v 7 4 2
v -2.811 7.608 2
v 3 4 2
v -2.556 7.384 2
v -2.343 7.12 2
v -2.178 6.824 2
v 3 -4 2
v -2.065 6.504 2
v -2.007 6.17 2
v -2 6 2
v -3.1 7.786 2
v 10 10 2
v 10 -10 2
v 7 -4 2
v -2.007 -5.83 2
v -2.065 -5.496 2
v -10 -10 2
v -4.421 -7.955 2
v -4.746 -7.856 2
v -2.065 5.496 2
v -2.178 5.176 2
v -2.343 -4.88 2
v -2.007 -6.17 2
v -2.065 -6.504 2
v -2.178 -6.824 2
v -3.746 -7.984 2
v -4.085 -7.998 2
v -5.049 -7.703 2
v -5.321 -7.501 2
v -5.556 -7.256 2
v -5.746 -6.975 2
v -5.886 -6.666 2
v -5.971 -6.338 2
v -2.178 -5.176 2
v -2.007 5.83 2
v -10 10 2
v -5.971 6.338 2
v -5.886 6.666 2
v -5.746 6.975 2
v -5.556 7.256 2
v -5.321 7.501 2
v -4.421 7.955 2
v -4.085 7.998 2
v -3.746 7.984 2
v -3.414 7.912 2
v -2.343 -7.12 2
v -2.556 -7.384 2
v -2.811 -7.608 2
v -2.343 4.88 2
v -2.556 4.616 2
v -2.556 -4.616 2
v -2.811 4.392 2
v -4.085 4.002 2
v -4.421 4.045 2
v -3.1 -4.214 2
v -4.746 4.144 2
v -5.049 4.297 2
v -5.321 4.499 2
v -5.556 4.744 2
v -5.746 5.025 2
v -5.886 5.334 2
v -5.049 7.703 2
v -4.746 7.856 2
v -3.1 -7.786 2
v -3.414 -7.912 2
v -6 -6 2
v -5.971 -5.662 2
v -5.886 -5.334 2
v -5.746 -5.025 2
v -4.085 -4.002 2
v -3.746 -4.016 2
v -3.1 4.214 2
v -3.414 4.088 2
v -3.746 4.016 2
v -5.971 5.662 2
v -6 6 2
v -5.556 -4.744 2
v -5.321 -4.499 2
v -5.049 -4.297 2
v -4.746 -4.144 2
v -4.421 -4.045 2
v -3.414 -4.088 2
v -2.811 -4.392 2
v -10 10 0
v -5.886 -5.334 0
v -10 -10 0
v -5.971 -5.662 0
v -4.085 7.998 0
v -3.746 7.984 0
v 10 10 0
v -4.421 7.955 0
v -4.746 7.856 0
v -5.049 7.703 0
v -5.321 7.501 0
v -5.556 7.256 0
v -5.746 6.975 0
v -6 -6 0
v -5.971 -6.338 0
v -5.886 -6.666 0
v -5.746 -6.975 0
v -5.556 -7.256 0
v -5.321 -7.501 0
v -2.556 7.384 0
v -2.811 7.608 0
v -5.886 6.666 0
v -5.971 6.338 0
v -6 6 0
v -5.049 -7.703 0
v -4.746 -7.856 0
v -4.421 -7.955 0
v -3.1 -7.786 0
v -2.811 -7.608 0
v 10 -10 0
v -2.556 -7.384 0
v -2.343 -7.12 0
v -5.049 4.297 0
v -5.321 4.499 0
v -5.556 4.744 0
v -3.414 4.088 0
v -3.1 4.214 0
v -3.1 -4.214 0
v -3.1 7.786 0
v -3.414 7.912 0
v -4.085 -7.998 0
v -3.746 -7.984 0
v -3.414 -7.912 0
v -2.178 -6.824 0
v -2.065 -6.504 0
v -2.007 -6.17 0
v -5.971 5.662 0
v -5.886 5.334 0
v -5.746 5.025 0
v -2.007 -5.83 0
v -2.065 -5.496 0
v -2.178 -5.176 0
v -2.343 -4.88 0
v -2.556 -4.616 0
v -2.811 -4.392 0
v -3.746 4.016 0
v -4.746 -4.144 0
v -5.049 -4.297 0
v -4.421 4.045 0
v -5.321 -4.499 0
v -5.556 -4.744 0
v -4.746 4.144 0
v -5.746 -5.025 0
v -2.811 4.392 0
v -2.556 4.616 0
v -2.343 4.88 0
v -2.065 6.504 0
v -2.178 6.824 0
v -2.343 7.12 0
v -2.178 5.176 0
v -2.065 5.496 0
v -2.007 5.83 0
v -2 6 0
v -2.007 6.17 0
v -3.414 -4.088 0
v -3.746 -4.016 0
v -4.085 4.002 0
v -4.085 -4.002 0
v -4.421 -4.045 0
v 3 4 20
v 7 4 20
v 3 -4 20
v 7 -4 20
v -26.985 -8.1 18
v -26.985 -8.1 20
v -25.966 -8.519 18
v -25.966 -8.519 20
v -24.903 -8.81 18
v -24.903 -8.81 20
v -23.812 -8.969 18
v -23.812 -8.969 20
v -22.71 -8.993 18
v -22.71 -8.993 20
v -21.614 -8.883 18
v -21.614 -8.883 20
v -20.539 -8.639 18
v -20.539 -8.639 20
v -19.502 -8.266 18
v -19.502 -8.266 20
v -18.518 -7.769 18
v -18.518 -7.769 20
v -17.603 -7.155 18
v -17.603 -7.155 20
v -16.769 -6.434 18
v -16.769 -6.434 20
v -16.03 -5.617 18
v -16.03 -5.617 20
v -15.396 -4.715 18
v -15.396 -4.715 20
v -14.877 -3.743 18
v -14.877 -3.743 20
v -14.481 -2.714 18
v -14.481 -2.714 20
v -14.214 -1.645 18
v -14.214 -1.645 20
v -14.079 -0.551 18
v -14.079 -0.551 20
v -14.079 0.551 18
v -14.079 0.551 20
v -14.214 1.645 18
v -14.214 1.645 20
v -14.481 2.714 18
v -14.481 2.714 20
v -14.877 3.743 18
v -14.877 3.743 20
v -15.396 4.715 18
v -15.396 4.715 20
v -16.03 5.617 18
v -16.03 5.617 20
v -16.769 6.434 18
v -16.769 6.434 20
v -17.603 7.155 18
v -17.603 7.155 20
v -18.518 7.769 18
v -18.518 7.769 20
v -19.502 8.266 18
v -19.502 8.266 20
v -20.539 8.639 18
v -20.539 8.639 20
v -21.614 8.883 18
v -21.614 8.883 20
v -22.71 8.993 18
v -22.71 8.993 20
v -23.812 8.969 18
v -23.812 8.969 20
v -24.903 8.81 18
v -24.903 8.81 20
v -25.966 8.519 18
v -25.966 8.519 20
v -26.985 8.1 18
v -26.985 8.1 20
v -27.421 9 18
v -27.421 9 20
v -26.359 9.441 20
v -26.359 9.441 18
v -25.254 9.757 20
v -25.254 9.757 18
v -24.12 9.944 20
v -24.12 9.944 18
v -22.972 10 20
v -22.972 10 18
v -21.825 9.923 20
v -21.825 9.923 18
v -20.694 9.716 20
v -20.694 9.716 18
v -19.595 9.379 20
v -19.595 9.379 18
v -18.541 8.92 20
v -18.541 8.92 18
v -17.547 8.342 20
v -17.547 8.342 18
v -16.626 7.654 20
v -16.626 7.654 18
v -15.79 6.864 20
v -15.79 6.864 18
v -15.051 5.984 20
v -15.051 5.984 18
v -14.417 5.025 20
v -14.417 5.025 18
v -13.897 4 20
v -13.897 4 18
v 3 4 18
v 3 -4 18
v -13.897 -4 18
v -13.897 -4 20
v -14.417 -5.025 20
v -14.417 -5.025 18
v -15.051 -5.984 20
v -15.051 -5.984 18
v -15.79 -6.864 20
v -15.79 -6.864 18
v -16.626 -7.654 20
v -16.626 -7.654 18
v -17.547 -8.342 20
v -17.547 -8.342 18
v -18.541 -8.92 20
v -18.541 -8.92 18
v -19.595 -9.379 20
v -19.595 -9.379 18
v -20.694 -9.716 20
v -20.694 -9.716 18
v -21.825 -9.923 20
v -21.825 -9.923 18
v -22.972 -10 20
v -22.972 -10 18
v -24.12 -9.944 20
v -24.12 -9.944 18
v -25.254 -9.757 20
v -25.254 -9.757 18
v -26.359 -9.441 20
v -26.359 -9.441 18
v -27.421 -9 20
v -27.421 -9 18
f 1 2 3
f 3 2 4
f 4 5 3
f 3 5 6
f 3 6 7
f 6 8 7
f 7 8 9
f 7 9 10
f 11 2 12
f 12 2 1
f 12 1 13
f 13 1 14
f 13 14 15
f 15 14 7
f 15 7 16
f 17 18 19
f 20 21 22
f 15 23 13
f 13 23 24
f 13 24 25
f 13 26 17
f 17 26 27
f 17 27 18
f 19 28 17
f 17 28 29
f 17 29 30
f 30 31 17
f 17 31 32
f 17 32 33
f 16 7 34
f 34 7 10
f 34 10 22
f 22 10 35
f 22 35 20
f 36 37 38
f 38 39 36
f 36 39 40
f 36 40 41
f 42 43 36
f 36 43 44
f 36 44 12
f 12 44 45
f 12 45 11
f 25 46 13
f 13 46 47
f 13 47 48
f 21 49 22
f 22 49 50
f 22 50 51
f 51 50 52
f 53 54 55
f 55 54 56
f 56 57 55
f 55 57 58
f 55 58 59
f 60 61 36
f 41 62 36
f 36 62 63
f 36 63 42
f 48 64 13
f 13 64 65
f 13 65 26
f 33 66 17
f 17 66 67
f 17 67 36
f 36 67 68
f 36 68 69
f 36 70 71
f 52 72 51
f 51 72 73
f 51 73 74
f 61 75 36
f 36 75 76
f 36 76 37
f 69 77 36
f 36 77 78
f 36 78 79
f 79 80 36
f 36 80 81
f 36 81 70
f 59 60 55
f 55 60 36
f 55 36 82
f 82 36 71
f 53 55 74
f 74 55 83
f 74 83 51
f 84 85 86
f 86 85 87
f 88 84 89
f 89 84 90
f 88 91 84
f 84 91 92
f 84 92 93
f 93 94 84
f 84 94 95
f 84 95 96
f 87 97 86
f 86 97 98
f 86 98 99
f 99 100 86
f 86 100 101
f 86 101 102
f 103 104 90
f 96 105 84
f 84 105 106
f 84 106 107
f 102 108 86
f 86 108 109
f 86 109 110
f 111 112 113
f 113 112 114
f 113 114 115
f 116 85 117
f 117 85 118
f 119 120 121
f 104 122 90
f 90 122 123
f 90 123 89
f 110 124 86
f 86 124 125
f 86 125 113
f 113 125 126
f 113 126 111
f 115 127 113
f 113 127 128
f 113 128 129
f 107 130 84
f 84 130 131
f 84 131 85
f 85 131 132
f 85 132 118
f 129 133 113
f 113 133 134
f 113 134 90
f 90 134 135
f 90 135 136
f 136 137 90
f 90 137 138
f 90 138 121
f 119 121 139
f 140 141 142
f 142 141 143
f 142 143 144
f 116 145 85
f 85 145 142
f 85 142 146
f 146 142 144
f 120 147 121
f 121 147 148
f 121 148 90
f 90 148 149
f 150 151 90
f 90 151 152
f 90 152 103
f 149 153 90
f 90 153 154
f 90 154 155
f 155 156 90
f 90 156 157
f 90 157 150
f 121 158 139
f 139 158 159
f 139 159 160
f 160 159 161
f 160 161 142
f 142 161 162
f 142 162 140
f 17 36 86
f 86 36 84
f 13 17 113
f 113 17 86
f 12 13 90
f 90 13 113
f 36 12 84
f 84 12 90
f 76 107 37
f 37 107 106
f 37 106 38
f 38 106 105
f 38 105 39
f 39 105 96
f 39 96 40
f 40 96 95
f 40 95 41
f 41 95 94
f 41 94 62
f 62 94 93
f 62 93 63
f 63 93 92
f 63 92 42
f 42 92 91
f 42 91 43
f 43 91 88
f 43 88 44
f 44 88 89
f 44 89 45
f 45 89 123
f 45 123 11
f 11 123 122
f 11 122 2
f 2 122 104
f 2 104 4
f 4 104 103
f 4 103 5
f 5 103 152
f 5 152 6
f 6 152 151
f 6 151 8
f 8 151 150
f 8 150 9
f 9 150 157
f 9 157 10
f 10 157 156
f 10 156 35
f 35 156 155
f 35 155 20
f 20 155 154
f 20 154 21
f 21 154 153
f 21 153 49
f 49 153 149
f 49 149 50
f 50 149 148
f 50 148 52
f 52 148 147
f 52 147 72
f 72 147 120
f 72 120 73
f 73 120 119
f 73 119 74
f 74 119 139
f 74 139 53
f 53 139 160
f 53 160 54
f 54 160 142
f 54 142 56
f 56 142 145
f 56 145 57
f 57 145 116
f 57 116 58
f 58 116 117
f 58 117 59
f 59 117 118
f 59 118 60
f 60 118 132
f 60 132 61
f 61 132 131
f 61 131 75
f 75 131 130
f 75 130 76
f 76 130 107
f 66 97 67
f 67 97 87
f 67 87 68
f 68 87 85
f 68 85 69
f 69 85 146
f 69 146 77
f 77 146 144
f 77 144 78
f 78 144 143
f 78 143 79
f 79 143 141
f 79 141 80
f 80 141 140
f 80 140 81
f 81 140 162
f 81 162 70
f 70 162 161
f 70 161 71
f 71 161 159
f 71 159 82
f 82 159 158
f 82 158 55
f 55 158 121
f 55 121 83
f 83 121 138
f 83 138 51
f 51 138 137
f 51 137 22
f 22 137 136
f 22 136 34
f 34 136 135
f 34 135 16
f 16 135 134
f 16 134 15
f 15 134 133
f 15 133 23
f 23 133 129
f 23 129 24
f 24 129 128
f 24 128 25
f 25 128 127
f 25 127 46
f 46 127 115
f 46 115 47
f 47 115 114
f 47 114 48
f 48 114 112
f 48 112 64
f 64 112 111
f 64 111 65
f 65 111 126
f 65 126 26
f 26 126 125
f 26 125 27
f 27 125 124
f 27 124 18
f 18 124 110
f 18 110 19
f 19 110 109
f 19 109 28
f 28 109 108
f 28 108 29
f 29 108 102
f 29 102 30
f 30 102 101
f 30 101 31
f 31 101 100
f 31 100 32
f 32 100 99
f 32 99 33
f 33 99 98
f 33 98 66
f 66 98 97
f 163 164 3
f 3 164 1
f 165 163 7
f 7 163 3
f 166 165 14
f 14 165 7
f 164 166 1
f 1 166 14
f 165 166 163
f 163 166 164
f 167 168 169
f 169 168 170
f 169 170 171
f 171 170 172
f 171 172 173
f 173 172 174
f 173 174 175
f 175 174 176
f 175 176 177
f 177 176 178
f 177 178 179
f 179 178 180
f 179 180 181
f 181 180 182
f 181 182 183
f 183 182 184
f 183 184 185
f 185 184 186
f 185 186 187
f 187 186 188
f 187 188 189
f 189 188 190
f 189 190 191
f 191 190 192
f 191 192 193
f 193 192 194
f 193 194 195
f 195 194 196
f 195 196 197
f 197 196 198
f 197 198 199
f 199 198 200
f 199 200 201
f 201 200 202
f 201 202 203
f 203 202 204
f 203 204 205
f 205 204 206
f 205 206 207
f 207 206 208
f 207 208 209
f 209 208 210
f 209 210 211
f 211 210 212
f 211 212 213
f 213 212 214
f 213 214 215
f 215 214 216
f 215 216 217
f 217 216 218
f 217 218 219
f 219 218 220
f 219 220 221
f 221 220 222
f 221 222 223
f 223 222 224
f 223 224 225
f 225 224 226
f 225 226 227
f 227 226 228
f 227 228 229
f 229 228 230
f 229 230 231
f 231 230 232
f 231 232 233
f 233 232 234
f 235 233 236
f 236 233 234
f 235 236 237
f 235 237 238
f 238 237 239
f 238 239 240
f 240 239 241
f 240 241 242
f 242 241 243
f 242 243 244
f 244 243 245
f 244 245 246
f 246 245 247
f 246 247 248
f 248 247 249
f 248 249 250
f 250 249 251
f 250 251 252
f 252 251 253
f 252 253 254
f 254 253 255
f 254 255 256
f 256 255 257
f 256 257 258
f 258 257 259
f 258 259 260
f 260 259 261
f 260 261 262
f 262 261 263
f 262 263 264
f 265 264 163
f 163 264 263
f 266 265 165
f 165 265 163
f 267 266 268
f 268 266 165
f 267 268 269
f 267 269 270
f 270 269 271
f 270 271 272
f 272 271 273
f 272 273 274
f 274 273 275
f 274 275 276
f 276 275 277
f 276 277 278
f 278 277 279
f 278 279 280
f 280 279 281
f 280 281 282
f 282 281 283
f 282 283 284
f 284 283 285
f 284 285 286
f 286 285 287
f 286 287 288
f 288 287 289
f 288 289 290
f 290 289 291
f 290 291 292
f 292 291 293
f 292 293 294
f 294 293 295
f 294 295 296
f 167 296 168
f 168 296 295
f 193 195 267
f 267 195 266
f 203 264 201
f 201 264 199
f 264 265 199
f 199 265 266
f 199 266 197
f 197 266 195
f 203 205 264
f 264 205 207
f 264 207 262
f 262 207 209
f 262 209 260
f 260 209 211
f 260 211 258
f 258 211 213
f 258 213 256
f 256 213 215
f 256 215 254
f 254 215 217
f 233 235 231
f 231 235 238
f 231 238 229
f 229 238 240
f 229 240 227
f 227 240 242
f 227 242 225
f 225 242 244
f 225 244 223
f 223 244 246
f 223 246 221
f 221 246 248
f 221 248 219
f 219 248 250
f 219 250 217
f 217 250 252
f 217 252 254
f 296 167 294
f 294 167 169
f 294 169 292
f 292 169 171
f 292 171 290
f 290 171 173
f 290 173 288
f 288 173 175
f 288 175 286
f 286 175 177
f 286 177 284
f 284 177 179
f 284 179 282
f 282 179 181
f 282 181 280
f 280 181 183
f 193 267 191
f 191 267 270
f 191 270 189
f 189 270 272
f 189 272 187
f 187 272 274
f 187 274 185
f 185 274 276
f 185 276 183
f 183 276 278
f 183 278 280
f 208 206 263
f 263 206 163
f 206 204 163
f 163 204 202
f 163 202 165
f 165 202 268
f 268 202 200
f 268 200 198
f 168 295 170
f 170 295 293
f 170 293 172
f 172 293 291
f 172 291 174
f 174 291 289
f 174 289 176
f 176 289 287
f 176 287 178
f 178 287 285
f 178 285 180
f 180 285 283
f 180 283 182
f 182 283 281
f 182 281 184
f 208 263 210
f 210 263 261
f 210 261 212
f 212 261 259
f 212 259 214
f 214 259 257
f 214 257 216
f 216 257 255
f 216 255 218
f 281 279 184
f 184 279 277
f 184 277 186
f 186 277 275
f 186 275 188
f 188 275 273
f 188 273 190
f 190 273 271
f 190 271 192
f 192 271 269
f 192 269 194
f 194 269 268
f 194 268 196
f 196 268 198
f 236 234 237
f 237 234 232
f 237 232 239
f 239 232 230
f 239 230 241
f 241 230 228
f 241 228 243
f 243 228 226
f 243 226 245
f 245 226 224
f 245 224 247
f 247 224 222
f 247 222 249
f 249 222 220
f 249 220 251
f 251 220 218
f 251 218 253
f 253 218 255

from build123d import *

# Parameters (mm, degrees)
SKETCH1_W           = 20
SKETCH1_H           = 20
SKETCH1_R           = 2
BOSS_EXTRUDE1_DEPTH = 2
SKETCH2_W           = 4
SKETCH2_H           = 8
BOSS_EXTRUDE2_DEPTH = 18
BOSS_EXTRUDE3_DEPTH = 2


with BuildPart() as part:
    # Sketch1 → Boss-Extrude1 (new body)
    with BuildSketch(Plane.XY):
        Rectangle(SKETCH1_W, SKETCH1_H)
        with Locations((-4, 6)):
            Circle(SKETCH1_R, mode=Mode.SUBTRACT)
        with Locations(Location((-4, -6, 0), (0, 0, 180))):
            Circle(SKETCH1_R, mode=Mode.SUBTRACT)
    extrude(amount=BOSS_EXTRUDE1_DEPTH)

    # Sketch2 → Boss-Extrude2 (add)
    with BuildSketch(Plane.XY.offset(2)):
        with Locations((5, 0)):
            Rectangle(SKETCH2_W, SKETCH2_H)
    extrude(amount=BOSS_EXTRUDE2_DEPTH)


with BuildPart() as body_2:
    # Sketch3 → Boss-Extrude3 (new body)
    with BuildSketch(Plane.XY.offset(20)):
        with BuildLine():
            ThreePointArc((-26.985266797, 8.1), (-14.062257748, 0), (-26.985266797, -8.1))
            Line((-26.985266797, -8.1), (-27.421156692, -9))
            ThreePointArc((-27.421156692, -9), (-19.594547316, -9.379498087), (-13.897106358, -4))
            Line((-13.897106358, -4), (3, -4))
            Line((3, -4), (3, 0))
            Line((3, 0), (3, 4))
            Line((3, 4), (-13.897106358, 4))
            ThreePointArc((-13.897106358, 4), (-19.594547316, 9.379498087), (-27.421156692, 9))
            Line((-27.421156692, 9), (-26.985266797, 8.1))
        make_face()
    extrude(amount=-BOSS_EXTRUDE3_DEPTH)


solid = Compound([part.part, body_2.part])
